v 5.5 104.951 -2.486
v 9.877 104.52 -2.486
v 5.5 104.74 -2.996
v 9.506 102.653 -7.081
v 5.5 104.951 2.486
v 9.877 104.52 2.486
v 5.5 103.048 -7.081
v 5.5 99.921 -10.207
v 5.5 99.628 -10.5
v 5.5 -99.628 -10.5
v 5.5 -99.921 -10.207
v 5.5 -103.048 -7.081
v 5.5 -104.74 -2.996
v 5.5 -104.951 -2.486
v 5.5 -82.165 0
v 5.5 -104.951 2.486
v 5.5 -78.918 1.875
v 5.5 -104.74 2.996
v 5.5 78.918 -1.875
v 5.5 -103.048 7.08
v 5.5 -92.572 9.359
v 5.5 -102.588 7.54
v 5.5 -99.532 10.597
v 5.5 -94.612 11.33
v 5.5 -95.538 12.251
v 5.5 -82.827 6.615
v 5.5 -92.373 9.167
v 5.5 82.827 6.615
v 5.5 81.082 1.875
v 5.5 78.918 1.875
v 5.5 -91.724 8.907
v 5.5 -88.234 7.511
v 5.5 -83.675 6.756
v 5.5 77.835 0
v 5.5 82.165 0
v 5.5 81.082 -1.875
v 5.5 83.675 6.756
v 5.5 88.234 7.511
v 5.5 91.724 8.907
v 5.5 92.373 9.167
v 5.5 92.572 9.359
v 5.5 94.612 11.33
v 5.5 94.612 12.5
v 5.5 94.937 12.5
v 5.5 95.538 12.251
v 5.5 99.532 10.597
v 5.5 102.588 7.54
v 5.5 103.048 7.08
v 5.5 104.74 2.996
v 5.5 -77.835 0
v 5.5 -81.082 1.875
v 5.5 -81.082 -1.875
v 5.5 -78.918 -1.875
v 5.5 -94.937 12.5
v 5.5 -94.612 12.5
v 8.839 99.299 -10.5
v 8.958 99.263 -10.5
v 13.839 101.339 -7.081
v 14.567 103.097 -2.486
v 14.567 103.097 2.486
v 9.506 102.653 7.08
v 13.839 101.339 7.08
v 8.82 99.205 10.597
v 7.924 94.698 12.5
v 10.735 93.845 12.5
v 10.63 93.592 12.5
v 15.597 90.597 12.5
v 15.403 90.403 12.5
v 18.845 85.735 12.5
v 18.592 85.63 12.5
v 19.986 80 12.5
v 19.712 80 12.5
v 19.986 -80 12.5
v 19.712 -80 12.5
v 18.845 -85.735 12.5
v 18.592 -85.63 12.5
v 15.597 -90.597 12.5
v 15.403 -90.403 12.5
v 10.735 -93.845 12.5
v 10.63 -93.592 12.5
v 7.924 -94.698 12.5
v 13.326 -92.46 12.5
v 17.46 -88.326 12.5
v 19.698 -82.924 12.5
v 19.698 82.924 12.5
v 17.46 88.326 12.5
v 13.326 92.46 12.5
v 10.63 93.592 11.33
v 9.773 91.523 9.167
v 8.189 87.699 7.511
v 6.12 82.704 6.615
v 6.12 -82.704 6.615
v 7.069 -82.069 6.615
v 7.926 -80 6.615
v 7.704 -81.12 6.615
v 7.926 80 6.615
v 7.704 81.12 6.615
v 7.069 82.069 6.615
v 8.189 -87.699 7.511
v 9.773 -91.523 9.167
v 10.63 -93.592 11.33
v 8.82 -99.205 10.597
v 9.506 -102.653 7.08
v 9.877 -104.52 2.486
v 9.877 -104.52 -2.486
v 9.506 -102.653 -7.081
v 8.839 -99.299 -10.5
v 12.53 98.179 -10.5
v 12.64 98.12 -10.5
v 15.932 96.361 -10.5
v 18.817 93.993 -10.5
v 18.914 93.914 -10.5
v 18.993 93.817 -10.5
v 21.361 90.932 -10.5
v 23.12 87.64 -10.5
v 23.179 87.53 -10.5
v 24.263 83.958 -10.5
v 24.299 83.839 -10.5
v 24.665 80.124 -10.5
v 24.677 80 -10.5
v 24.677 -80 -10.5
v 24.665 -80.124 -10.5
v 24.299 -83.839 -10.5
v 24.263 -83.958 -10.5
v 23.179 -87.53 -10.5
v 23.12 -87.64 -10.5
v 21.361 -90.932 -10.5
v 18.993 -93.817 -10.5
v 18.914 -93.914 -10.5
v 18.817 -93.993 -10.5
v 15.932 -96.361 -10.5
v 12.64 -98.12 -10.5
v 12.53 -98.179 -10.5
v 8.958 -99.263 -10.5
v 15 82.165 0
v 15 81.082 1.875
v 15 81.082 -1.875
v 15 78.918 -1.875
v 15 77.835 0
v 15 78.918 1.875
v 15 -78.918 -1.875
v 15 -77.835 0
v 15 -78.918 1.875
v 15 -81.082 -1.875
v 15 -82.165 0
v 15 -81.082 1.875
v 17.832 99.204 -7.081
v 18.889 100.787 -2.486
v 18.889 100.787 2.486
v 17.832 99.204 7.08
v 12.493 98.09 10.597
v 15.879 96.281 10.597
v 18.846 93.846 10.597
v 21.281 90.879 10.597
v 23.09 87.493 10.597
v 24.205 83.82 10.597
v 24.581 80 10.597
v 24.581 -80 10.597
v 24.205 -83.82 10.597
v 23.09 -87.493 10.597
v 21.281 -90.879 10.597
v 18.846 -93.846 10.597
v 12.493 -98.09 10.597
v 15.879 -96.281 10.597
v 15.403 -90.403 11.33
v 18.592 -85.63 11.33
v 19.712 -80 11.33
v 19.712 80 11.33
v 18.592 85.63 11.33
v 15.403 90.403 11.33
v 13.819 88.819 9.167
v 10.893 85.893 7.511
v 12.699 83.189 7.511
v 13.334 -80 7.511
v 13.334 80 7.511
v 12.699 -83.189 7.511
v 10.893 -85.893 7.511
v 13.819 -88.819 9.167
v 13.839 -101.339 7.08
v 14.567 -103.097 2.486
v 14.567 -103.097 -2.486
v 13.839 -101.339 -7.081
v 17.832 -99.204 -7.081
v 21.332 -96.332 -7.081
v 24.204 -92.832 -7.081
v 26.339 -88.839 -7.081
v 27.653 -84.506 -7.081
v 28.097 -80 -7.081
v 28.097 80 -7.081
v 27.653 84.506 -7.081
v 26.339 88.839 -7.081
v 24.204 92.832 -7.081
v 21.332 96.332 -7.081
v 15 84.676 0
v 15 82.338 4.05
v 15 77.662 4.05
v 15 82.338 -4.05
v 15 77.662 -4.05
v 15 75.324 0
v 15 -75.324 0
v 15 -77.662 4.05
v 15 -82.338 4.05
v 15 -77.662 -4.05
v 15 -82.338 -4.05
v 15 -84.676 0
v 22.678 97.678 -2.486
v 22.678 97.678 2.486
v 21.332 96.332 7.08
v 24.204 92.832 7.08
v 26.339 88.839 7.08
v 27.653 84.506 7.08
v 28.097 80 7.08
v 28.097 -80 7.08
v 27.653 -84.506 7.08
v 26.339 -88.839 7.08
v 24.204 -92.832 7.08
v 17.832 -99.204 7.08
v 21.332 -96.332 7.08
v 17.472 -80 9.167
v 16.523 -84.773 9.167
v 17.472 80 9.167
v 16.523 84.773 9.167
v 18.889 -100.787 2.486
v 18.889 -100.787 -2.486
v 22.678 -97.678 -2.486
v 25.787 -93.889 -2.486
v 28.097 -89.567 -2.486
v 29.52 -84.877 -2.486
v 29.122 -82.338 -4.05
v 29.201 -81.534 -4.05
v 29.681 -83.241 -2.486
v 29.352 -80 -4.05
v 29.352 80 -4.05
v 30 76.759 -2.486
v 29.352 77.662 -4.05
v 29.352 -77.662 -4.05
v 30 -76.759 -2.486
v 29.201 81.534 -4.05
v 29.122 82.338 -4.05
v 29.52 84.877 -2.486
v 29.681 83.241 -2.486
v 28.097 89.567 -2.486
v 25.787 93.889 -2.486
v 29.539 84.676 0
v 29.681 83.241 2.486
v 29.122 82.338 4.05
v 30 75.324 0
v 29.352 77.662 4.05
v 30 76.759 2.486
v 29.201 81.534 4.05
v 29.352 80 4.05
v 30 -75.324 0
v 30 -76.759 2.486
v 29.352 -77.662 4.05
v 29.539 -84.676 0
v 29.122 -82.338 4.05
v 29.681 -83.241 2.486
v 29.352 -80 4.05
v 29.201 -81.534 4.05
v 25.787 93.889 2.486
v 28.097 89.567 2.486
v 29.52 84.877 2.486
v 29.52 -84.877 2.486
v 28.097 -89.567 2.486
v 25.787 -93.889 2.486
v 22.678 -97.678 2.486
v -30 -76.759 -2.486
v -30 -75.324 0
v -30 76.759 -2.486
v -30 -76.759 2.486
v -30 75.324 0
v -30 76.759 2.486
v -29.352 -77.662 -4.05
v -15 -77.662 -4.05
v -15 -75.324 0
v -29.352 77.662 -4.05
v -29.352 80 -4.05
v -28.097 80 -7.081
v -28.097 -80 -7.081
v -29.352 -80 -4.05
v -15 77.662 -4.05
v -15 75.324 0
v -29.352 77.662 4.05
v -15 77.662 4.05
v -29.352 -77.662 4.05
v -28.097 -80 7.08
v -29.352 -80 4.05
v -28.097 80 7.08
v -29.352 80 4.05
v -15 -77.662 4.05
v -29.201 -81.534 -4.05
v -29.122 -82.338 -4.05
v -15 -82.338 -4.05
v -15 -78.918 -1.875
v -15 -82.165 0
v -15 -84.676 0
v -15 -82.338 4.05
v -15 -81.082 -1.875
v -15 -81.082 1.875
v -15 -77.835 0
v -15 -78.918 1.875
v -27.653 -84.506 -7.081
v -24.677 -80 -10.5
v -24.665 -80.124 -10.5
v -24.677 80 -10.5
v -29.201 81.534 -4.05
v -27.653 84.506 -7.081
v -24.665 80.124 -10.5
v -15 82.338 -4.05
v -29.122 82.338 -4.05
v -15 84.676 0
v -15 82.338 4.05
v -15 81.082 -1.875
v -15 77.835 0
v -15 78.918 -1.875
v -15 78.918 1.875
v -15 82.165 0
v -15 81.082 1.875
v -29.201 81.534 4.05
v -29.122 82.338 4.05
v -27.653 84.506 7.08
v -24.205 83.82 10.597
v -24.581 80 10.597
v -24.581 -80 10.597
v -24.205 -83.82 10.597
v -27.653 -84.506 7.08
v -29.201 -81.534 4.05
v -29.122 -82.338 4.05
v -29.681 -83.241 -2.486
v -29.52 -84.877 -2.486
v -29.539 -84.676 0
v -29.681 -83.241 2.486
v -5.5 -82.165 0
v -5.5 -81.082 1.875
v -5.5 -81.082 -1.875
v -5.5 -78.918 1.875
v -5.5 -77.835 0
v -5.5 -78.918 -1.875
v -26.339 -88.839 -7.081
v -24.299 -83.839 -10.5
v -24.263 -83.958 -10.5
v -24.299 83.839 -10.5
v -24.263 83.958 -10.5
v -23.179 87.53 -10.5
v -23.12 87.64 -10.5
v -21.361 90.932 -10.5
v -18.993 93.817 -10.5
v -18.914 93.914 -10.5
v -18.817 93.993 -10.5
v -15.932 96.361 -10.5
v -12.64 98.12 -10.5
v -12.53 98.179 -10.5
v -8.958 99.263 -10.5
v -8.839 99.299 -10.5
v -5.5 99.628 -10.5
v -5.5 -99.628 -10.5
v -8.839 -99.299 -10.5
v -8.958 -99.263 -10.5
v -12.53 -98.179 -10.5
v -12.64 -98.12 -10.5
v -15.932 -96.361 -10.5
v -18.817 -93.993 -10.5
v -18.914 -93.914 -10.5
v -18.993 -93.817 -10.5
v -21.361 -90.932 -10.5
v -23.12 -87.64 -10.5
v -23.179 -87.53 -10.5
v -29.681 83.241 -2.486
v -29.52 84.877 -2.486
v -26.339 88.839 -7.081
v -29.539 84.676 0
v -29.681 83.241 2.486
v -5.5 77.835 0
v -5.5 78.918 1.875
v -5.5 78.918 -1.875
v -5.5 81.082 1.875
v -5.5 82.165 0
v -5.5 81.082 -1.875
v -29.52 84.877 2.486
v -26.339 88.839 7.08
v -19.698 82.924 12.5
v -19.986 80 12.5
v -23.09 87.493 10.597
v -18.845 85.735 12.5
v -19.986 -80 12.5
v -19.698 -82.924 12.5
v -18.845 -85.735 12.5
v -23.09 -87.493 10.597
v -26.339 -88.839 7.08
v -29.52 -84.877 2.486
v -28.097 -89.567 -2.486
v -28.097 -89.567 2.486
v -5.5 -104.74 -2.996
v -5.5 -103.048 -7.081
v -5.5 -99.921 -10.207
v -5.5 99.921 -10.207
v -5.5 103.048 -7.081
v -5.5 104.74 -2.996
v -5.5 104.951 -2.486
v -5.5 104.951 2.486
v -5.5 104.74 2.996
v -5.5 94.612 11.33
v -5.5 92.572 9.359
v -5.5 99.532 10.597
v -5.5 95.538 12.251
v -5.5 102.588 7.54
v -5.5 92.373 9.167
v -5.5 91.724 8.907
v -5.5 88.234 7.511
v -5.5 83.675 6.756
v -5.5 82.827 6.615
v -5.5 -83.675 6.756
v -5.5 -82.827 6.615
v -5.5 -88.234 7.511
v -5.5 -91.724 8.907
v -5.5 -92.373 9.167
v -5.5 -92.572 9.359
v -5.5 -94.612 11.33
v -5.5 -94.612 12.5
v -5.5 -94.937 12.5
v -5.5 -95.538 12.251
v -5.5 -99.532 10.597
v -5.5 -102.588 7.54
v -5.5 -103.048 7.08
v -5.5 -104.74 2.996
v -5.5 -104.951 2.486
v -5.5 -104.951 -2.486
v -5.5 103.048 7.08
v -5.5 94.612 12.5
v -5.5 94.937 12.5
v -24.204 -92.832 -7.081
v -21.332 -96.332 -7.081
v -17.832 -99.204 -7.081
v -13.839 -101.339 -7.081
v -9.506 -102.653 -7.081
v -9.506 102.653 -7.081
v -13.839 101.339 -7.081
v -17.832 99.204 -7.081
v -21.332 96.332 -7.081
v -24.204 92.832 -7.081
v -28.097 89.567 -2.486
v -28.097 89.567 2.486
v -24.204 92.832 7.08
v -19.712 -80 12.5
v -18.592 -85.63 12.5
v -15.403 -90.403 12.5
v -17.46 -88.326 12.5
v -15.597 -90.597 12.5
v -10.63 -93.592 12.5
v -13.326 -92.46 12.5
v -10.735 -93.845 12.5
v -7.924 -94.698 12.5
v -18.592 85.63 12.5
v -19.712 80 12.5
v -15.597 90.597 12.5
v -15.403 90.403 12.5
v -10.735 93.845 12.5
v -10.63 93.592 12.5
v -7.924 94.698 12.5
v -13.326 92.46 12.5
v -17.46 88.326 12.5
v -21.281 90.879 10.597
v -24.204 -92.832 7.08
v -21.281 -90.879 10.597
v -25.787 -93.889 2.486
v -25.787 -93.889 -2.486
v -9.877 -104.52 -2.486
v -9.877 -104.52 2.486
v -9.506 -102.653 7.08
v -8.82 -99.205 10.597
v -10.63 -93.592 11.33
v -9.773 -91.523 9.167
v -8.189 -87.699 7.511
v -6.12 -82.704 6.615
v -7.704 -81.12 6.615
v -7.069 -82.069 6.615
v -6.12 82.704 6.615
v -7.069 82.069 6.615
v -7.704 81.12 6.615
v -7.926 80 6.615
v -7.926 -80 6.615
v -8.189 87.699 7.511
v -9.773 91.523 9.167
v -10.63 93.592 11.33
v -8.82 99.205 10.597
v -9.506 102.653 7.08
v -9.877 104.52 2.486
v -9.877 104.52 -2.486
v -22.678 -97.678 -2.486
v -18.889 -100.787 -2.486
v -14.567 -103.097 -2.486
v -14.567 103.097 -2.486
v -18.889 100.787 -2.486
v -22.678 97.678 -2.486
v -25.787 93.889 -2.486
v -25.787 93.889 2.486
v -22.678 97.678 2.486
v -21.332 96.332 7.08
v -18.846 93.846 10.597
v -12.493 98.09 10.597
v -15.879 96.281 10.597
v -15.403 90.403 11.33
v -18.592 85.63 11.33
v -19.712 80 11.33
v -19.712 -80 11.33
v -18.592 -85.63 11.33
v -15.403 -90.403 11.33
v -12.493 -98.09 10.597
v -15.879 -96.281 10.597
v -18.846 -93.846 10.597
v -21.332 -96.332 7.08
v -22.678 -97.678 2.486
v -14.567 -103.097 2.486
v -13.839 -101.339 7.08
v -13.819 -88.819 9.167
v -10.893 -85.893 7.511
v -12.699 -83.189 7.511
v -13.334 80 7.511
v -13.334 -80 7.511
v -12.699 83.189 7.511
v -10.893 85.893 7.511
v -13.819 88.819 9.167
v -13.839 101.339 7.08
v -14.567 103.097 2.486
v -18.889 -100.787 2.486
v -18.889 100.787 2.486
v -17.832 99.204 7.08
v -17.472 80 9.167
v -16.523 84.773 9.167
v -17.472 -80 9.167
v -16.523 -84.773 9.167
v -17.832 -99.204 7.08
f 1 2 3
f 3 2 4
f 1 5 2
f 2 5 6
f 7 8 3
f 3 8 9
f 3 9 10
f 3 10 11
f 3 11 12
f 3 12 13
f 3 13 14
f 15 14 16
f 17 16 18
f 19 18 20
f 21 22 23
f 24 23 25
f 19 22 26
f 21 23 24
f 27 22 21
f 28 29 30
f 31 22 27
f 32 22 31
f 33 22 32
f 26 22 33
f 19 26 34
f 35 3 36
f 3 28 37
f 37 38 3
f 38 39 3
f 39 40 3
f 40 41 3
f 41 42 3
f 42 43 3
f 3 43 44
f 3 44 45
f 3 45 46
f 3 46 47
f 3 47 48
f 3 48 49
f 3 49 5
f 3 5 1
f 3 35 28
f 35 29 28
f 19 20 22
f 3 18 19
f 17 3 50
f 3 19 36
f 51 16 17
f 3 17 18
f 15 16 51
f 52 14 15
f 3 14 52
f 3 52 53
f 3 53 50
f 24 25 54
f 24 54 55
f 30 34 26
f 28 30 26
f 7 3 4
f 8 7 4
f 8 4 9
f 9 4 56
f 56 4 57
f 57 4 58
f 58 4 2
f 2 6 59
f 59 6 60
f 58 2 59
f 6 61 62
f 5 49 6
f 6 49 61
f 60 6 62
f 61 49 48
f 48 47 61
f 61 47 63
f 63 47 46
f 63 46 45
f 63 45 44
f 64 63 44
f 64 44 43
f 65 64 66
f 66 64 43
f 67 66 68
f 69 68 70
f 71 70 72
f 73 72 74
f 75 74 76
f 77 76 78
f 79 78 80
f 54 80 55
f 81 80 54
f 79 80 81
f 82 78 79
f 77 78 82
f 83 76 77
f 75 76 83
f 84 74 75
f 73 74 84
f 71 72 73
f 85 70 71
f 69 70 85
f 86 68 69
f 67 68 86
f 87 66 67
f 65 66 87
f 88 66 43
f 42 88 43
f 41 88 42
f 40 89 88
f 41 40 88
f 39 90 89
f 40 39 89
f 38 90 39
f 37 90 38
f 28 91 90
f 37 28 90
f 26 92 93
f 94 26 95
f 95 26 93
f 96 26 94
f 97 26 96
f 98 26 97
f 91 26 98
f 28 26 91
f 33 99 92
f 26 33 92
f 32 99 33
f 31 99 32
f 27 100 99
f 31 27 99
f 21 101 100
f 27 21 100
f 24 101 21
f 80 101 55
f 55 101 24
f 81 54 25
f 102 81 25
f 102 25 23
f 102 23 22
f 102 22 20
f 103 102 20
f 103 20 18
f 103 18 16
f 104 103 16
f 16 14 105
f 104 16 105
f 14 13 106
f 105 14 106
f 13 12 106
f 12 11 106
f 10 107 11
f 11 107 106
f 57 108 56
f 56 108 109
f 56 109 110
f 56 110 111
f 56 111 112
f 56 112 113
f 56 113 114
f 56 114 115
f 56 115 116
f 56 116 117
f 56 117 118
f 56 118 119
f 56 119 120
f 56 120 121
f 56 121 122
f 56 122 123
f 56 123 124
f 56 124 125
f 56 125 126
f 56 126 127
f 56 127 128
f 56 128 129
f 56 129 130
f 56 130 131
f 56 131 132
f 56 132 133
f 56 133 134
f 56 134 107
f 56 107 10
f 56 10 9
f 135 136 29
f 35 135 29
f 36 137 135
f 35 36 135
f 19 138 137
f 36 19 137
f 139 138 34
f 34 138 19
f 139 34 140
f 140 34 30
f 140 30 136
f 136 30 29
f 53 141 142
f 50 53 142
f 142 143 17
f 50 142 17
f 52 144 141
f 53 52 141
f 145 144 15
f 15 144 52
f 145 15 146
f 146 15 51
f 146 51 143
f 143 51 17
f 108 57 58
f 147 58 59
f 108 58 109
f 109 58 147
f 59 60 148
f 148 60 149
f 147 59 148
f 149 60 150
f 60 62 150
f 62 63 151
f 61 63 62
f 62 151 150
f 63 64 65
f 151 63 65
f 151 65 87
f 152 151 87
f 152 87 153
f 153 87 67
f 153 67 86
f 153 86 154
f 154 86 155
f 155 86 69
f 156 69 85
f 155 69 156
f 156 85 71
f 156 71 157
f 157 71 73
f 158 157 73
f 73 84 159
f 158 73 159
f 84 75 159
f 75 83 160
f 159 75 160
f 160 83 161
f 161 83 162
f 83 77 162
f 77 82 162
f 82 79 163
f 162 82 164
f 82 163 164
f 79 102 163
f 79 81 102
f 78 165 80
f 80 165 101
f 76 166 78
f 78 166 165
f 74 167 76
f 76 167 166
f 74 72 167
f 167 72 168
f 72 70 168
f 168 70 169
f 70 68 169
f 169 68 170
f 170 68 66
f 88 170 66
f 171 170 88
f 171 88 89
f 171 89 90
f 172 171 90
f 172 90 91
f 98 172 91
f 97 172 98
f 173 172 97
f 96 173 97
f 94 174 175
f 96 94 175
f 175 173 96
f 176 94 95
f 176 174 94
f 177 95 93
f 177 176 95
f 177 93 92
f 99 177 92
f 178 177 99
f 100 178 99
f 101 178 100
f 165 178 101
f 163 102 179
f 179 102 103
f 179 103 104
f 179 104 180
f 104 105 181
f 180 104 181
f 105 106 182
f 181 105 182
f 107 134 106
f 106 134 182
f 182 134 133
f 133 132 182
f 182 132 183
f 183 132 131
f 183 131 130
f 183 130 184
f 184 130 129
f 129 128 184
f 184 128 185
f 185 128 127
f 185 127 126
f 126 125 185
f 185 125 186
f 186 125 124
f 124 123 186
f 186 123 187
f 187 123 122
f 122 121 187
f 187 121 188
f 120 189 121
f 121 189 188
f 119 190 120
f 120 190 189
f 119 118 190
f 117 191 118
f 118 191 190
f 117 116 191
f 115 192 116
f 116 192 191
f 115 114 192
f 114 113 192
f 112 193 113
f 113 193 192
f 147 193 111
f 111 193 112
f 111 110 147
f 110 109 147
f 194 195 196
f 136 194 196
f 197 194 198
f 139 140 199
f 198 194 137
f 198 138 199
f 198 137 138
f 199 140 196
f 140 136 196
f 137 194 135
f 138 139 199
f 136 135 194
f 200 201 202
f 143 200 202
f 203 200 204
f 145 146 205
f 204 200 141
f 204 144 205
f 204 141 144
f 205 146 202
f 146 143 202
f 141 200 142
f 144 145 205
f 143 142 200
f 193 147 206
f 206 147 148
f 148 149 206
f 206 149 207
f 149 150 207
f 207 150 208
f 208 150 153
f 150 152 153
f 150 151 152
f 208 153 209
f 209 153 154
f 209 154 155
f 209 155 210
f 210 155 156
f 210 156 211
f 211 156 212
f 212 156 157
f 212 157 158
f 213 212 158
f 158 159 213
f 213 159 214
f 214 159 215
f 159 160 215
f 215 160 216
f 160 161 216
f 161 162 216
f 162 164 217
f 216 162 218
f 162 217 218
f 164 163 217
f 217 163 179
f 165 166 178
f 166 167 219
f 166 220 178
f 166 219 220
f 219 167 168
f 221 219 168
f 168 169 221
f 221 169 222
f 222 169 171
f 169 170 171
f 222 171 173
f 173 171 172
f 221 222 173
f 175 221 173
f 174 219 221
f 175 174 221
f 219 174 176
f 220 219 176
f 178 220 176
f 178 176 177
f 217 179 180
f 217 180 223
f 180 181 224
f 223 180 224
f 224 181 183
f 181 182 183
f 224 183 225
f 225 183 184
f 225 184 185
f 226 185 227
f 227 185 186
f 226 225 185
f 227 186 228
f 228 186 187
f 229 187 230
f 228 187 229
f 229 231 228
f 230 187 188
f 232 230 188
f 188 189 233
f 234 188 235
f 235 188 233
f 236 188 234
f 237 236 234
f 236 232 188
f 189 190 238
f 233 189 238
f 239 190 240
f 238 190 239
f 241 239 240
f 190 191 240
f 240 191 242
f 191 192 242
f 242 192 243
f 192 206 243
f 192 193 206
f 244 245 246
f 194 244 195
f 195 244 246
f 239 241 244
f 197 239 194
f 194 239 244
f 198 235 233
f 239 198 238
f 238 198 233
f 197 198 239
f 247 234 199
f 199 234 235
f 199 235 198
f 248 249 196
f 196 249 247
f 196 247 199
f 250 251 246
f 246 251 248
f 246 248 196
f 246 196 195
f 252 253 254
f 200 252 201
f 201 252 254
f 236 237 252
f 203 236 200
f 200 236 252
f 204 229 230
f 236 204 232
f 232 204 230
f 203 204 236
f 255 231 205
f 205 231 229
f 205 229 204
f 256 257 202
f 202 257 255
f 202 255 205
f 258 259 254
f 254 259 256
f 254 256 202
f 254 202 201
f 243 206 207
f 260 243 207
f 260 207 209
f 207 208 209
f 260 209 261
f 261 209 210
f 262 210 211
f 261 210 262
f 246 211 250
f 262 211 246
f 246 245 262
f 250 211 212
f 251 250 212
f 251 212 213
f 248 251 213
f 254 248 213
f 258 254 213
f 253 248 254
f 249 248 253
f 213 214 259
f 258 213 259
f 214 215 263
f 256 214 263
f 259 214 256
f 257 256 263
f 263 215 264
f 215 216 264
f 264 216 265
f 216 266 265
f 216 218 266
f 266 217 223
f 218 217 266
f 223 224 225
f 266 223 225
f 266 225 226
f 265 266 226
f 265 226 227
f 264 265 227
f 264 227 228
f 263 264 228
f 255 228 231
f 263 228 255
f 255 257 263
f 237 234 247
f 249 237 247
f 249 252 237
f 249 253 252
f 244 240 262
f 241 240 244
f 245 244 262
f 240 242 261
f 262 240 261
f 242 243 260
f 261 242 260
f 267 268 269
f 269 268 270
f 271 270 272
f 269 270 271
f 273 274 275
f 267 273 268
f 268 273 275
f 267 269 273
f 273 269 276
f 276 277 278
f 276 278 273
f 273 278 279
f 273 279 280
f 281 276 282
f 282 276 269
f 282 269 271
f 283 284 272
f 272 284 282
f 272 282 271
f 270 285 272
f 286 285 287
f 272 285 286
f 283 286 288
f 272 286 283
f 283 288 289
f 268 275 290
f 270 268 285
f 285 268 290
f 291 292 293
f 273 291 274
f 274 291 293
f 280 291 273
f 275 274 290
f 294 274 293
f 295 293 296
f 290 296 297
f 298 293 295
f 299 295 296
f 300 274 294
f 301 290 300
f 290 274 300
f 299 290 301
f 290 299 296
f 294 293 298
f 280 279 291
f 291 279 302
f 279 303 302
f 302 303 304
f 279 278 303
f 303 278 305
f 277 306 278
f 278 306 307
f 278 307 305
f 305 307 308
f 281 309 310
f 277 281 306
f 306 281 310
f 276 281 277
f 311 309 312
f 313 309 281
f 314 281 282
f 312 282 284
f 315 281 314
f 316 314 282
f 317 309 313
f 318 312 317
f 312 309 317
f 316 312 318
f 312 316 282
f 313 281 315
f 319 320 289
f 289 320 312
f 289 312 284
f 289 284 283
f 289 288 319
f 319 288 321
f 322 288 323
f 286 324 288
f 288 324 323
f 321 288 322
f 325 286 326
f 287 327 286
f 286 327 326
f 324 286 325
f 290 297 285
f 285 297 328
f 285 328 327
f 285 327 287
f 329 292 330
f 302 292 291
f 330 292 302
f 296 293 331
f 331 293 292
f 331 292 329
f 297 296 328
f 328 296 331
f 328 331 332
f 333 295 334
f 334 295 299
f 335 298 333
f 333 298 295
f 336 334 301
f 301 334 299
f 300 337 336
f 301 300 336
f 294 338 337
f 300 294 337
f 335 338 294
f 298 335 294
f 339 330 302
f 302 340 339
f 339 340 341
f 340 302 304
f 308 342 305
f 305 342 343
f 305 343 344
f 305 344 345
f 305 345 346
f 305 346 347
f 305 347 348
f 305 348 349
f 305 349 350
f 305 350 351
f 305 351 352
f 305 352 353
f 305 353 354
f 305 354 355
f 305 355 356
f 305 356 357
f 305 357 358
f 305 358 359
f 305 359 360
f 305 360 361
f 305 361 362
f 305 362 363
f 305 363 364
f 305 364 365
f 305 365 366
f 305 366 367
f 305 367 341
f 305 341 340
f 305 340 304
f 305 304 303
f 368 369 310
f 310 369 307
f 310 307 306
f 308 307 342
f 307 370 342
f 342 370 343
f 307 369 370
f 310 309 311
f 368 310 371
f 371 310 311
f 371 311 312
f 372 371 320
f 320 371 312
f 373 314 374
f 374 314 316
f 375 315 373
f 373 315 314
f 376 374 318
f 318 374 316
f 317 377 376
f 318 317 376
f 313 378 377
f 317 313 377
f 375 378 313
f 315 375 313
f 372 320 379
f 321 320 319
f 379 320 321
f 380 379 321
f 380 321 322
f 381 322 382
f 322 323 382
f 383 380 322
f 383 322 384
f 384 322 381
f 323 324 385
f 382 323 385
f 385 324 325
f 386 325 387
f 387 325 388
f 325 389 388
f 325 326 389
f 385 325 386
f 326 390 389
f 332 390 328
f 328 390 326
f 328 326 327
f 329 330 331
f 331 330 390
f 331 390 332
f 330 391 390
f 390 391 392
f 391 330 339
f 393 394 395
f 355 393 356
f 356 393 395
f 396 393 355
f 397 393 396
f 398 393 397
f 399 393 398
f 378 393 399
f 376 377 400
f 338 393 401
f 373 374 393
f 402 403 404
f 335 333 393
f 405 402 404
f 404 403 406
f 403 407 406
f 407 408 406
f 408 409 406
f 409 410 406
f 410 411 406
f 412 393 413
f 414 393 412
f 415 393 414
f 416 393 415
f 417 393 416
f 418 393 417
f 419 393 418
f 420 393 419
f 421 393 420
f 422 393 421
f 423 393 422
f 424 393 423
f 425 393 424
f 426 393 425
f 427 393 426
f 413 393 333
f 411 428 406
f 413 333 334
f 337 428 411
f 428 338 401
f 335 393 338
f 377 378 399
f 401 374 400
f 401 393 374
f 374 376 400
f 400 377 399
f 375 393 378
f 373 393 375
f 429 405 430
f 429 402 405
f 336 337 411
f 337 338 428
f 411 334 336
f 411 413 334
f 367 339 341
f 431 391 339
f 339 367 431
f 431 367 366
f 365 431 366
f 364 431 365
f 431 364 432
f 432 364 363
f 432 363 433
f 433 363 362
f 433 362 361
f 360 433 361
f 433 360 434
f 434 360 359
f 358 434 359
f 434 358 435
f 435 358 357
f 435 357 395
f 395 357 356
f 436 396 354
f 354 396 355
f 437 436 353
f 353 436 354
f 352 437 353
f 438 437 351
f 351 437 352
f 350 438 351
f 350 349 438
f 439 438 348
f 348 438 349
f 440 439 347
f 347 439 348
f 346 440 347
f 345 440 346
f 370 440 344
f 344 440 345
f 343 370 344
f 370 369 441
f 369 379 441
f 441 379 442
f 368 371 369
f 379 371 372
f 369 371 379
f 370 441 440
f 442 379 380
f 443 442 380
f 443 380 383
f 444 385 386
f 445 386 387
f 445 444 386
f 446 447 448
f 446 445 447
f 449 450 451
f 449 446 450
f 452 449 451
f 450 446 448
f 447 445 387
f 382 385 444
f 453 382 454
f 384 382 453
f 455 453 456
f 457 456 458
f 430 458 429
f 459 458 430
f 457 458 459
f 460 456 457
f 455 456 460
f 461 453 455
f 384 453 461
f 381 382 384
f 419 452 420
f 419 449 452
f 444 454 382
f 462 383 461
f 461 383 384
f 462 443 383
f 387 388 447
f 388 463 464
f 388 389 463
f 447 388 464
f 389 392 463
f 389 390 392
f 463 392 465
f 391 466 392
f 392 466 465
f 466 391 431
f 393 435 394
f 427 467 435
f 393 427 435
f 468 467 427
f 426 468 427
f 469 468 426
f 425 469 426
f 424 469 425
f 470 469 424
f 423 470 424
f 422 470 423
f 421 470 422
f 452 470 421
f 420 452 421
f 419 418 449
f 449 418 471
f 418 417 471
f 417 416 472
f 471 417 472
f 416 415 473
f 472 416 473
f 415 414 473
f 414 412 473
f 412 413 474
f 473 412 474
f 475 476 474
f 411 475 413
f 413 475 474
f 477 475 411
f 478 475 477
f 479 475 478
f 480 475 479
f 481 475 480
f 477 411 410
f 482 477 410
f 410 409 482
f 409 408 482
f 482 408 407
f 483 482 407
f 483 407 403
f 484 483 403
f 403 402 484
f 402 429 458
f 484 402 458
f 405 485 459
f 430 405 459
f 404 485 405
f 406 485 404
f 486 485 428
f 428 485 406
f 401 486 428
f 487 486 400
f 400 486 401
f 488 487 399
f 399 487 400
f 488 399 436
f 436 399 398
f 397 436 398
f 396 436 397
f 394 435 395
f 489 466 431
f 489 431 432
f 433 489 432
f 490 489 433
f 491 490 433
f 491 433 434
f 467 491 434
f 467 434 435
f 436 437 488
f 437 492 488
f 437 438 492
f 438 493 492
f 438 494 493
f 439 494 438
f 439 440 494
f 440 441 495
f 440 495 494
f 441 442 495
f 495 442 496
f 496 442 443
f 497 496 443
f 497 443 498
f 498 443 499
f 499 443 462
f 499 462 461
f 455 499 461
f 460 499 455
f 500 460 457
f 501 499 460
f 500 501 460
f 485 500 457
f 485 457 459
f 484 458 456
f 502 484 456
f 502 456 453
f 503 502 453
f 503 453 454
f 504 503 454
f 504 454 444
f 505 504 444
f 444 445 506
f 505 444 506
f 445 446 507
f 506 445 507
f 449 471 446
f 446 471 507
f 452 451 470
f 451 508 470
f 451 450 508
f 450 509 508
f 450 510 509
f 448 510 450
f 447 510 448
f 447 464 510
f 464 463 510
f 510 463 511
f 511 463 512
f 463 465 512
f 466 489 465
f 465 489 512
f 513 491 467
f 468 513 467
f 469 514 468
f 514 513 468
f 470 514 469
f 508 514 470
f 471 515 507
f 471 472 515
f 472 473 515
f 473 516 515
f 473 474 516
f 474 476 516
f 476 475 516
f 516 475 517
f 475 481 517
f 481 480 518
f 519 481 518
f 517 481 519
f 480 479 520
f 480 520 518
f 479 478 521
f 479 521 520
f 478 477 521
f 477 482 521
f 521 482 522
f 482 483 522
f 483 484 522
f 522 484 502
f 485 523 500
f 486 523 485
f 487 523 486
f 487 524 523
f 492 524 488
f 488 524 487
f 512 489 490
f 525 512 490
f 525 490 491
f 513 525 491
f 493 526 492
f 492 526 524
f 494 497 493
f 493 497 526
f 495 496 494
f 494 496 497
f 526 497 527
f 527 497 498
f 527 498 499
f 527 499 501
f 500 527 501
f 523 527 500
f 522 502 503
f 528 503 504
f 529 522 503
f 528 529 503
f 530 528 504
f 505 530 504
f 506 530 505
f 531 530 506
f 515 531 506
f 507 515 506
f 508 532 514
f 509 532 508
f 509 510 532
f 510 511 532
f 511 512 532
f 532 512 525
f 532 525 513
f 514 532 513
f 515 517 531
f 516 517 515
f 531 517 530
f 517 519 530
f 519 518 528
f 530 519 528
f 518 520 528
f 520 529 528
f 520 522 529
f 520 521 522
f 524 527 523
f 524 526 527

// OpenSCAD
left = -1;
right = 1;
top = 1;
bottom = -1;
front = -1;
rear = 1;

// for M4
screw_diam = 4.25;
nut_diam = 7.3;
nut_thickness = 3.5;

// for 6-32
screw_diam = 3.75;
nut_diam = 8.1;
nut_thickness = 5;

screw_spacing = 160;
screw_mount_thickness = 10;
handle_depth  = 25;
handle_height = 25;
handle_diam   = handle_depth;

trim_bottom   = 2;

resolution = 16;

function accurate_diam(diam,sides) = 1 / cos(180/sides) / 2 * diam;

module hole(diam,len,sides=8) {
  cylinder(r=accurate_diam(diam,sides),h=len,center=true,$fn=sides);
}

module handle() {
  module body() {
    hull() {
      for(side=[left,right]) {
        translate([(screw_spacing/2)*side,0,0])
          rotate_extrude($fn=32)
            translate([handle_diam/2,0,0]) rotate([0,0,11.25])
              circle(r=accurate_diam(handle_diam,resolution),$fn=resolution);
      }
    }
  }

  module holes() {
    // flat bottom to print
    translate([0,handle_depth/2,-handle_diam/2]) {
      cube([screw_spacing*2,handle_depth,trim_bottom*2],center=true);
    }

    // mount against drawer
    translate([0,-handle_depth/2,0]) {
      cube([screw_spacing*2,handle_depth+1,handle_height+1],center=true);
    }

    // area for fingers to pull
    hull() {
      for(side=[left,right]) {
        translate([screw_spacing/2*side,0,handle_diam/2]) {
          scale([1,1,.4]) {
            sphere(r=handle_depth*.6,$fn=16);
          }
        }
      }
    }

    // screw holes with captive nuts
    for(side=[left,right]) {
      translate([screw_spacing/2*side,0,0]) {
        rotate([90,0,0])
          hole(screw_diam,handle_depth*2+1,6);

        translate([0,handle_depth,0])
          rotate([90,0,0])
            hole(nut_diam,(handle_depth-screw_mount_thickness)*2,6);
      }
    }
  }

  difference() {
    body();
    holes();
  }
}

for(side=[left,right]) {
  translate([-5*side,0,0])
    rotate([0,0,90*side])
      handle();
}

/*
for(side=[left,right])
  rotate([0,0,90-90*side])
    translate([0,5,0])
      handle(side);

*/
